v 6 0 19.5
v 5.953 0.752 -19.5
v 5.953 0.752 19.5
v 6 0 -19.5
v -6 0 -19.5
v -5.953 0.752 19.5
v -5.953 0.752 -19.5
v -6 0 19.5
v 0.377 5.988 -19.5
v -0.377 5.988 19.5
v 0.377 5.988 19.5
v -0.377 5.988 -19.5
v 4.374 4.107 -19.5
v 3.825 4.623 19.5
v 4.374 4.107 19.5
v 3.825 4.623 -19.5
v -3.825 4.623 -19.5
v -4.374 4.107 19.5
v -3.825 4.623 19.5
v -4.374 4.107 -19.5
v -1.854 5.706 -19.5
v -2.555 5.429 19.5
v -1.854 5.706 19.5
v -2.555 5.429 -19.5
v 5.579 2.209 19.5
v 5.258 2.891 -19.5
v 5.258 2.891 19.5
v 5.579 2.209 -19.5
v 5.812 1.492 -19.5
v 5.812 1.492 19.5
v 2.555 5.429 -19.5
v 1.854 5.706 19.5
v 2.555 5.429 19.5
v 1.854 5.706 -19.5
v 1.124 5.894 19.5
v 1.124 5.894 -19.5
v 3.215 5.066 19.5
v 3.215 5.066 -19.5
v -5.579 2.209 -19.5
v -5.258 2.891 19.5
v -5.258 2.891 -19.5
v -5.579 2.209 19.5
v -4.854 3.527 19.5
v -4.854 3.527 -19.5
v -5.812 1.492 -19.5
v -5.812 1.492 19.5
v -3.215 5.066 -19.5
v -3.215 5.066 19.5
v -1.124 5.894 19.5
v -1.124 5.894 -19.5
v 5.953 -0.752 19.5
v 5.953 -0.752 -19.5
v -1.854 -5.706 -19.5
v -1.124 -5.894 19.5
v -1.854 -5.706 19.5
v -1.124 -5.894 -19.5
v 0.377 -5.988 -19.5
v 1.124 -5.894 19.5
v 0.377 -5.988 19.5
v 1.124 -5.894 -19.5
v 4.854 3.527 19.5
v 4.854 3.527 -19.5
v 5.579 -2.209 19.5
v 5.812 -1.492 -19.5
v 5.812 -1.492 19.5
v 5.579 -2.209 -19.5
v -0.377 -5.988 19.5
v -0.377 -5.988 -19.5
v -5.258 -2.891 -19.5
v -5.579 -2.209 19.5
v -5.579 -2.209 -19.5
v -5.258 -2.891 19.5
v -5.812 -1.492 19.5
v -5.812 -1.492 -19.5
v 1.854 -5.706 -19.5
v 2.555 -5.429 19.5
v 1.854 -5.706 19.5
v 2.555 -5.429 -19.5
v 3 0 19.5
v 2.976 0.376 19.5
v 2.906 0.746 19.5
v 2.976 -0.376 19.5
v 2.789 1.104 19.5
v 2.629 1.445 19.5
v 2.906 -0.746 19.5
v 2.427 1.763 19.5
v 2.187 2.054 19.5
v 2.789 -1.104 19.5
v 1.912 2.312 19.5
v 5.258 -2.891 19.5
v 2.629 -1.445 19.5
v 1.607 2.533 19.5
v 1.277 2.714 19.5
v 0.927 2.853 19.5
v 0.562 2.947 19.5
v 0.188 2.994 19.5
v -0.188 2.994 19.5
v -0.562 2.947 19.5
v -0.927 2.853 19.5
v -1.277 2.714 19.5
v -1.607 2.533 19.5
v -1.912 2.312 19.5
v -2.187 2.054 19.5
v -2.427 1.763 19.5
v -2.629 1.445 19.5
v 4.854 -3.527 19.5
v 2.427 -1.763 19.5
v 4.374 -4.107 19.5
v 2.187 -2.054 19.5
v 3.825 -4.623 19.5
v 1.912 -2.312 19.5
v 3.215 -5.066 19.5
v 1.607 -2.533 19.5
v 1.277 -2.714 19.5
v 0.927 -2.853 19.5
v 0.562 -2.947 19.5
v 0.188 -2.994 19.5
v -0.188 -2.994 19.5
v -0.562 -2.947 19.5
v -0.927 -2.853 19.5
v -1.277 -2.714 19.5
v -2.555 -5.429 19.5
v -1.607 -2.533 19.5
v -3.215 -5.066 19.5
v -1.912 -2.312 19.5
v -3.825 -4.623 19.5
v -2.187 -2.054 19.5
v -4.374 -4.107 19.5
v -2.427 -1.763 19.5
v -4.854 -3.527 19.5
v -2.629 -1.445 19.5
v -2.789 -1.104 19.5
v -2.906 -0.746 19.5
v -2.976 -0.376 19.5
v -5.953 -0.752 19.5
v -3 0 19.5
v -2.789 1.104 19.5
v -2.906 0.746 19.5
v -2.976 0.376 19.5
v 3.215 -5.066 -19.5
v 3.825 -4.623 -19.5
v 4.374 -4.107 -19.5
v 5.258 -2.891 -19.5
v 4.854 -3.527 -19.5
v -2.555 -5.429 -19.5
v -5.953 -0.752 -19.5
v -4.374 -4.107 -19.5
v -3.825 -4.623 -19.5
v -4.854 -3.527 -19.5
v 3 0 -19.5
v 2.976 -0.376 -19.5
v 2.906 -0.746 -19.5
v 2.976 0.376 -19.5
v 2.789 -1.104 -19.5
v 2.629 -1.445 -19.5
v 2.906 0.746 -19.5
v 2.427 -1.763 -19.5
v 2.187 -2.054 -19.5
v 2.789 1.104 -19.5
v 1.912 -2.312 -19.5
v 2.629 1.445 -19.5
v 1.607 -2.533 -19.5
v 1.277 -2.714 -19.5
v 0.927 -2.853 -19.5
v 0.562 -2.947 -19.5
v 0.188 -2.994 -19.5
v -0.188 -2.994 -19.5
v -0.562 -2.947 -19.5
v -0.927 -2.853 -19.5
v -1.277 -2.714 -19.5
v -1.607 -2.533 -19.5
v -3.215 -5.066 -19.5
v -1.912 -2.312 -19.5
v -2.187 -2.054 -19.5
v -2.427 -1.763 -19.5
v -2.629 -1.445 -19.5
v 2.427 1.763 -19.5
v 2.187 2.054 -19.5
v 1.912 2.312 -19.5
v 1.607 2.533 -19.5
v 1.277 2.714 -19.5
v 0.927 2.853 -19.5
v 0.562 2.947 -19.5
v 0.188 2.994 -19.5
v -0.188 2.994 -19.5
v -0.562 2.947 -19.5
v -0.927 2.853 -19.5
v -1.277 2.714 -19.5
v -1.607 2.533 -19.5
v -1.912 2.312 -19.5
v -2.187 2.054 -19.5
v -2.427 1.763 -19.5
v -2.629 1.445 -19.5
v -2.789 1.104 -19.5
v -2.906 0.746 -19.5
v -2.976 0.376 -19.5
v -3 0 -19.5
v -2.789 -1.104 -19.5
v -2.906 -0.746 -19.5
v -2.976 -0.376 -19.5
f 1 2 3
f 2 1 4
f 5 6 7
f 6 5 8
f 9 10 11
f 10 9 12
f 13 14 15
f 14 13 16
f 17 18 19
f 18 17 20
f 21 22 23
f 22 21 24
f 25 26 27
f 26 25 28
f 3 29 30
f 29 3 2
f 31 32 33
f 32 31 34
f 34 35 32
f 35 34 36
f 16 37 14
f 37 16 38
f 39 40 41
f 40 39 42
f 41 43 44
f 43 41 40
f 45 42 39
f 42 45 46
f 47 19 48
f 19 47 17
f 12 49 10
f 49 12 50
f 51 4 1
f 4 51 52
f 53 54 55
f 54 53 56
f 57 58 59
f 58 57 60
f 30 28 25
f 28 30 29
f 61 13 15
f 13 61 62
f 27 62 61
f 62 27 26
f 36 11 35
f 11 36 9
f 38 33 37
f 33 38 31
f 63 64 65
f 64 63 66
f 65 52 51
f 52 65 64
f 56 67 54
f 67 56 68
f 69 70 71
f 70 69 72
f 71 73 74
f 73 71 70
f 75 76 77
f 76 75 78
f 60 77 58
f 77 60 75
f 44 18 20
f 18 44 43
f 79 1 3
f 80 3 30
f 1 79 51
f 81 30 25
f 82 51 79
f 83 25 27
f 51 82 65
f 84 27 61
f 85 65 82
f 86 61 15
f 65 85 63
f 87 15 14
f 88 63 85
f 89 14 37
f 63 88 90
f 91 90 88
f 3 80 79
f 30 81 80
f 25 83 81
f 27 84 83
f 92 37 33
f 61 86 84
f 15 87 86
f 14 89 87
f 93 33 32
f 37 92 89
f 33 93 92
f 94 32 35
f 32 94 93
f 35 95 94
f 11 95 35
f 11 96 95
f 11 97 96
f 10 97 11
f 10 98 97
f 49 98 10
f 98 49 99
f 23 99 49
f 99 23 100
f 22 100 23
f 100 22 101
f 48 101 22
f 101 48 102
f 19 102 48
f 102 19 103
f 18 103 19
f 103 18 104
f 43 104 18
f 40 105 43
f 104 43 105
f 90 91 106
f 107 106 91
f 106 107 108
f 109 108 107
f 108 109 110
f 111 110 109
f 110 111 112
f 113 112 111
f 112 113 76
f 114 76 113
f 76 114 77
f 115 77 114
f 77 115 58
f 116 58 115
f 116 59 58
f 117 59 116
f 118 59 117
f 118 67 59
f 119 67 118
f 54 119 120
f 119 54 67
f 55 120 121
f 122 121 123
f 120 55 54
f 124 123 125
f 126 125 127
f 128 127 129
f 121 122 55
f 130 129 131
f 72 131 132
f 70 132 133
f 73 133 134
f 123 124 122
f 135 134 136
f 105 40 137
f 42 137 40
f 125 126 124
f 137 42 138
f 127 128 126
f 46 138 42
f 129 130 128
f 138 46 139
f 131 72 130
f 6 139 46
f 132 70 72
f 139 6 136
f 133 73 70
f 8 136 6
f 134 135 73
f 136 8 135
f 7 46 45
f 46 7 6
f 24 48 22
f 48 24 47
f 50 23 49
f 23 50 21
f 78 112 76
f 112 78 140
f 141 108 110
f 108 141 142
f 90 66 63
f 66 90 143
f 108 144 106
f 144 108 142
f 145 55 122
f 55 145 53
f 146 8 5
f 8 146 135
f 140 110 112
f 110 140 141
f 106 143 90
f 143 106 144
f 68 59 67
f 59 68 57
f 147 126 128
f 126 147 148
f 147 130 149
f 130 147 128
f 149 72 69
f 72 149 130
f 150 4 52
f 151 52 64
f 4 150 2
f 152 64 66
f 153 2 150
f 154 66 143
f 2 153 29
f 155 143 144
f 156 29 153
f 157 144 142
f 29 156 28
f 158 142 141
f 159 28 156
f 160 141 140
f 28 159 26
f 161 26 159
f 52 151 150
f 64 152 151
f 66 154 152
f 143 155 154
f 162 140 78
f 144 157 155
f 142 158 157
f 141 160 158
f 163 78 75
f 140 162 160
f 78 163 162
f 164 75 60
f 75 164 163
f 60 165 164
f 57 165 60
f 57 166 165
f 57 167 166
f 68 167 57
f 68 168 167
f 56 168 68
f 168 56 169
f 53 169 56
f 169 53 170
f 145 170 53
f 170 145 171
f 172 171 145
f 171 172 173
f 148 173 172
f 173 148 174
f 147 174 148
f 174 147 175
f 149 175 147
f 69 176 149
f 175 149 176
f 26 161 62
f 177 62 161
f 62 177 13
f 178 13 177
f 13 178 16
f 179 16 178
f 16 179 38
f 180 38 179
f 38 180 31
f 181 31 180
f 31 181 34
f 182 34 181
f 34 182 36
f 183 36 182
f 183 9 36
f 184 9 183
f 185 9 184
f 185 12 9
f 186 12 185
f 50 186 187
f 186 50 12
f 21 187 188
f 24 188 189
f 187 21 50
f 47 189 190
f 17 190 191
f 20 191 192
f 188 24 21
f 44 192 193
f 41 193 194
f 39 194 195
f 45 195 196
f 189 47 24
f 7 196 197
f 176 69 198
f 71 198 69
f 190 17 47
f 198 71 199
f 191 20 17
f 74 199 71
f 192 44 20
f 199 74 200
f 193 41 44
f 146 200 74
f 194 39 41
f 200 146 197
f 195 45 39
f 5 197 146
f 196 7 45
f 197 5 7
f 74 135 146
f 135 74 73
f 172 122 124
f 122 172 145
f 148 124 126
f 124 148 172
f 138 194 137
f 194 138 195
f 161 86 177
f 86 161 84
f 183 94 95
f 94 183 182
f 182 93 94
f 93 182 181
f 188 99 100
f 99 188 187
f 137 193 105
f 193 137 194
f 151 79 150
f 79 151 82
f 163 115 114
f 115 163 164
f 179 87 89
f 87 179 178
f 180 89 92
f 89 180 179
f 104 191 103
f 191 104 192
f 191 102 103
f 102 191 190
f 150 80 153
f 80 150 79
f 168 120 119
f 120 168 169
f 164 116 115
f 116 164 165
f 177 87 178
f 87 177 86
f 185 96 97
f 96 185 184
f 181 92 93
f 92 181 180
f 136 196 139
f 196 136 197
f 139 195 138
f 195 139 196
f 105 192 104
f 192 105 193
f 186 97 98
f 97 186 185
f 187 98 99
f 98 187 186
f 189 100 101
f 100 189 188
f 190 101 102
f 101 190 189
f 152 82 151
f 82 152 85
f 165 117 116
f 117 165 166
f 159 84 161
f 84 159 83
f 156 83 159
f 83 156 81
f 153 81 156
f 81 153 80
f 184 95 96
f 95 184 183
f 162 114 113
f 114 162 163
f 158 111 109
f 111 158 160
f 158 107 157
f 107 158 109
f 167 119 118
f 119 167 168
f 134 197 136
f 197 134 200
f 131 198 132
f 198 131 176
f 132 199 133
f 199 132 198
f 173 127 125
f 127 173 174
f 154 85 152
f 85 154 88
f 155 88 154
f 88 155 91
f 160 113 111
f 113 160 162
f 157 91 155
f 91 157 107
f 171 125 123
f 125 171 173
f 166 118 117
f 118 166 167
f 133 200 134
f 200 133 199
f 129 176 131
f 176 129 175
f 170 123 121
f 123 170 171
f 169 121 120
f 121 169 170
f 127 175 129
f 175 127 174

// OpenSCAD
$fn = 50;


difference() {
	union() {
		translate(v = [0, 0, -19.5000000000]) {
			cylinder(h = 39, r = 6.0000000000);
		}
	}
	union() {
		translate(v = [0, 0, -100.0000000000]) {
			cylinder(h = 200, r = 3.0000000000);
		}
	}
}
